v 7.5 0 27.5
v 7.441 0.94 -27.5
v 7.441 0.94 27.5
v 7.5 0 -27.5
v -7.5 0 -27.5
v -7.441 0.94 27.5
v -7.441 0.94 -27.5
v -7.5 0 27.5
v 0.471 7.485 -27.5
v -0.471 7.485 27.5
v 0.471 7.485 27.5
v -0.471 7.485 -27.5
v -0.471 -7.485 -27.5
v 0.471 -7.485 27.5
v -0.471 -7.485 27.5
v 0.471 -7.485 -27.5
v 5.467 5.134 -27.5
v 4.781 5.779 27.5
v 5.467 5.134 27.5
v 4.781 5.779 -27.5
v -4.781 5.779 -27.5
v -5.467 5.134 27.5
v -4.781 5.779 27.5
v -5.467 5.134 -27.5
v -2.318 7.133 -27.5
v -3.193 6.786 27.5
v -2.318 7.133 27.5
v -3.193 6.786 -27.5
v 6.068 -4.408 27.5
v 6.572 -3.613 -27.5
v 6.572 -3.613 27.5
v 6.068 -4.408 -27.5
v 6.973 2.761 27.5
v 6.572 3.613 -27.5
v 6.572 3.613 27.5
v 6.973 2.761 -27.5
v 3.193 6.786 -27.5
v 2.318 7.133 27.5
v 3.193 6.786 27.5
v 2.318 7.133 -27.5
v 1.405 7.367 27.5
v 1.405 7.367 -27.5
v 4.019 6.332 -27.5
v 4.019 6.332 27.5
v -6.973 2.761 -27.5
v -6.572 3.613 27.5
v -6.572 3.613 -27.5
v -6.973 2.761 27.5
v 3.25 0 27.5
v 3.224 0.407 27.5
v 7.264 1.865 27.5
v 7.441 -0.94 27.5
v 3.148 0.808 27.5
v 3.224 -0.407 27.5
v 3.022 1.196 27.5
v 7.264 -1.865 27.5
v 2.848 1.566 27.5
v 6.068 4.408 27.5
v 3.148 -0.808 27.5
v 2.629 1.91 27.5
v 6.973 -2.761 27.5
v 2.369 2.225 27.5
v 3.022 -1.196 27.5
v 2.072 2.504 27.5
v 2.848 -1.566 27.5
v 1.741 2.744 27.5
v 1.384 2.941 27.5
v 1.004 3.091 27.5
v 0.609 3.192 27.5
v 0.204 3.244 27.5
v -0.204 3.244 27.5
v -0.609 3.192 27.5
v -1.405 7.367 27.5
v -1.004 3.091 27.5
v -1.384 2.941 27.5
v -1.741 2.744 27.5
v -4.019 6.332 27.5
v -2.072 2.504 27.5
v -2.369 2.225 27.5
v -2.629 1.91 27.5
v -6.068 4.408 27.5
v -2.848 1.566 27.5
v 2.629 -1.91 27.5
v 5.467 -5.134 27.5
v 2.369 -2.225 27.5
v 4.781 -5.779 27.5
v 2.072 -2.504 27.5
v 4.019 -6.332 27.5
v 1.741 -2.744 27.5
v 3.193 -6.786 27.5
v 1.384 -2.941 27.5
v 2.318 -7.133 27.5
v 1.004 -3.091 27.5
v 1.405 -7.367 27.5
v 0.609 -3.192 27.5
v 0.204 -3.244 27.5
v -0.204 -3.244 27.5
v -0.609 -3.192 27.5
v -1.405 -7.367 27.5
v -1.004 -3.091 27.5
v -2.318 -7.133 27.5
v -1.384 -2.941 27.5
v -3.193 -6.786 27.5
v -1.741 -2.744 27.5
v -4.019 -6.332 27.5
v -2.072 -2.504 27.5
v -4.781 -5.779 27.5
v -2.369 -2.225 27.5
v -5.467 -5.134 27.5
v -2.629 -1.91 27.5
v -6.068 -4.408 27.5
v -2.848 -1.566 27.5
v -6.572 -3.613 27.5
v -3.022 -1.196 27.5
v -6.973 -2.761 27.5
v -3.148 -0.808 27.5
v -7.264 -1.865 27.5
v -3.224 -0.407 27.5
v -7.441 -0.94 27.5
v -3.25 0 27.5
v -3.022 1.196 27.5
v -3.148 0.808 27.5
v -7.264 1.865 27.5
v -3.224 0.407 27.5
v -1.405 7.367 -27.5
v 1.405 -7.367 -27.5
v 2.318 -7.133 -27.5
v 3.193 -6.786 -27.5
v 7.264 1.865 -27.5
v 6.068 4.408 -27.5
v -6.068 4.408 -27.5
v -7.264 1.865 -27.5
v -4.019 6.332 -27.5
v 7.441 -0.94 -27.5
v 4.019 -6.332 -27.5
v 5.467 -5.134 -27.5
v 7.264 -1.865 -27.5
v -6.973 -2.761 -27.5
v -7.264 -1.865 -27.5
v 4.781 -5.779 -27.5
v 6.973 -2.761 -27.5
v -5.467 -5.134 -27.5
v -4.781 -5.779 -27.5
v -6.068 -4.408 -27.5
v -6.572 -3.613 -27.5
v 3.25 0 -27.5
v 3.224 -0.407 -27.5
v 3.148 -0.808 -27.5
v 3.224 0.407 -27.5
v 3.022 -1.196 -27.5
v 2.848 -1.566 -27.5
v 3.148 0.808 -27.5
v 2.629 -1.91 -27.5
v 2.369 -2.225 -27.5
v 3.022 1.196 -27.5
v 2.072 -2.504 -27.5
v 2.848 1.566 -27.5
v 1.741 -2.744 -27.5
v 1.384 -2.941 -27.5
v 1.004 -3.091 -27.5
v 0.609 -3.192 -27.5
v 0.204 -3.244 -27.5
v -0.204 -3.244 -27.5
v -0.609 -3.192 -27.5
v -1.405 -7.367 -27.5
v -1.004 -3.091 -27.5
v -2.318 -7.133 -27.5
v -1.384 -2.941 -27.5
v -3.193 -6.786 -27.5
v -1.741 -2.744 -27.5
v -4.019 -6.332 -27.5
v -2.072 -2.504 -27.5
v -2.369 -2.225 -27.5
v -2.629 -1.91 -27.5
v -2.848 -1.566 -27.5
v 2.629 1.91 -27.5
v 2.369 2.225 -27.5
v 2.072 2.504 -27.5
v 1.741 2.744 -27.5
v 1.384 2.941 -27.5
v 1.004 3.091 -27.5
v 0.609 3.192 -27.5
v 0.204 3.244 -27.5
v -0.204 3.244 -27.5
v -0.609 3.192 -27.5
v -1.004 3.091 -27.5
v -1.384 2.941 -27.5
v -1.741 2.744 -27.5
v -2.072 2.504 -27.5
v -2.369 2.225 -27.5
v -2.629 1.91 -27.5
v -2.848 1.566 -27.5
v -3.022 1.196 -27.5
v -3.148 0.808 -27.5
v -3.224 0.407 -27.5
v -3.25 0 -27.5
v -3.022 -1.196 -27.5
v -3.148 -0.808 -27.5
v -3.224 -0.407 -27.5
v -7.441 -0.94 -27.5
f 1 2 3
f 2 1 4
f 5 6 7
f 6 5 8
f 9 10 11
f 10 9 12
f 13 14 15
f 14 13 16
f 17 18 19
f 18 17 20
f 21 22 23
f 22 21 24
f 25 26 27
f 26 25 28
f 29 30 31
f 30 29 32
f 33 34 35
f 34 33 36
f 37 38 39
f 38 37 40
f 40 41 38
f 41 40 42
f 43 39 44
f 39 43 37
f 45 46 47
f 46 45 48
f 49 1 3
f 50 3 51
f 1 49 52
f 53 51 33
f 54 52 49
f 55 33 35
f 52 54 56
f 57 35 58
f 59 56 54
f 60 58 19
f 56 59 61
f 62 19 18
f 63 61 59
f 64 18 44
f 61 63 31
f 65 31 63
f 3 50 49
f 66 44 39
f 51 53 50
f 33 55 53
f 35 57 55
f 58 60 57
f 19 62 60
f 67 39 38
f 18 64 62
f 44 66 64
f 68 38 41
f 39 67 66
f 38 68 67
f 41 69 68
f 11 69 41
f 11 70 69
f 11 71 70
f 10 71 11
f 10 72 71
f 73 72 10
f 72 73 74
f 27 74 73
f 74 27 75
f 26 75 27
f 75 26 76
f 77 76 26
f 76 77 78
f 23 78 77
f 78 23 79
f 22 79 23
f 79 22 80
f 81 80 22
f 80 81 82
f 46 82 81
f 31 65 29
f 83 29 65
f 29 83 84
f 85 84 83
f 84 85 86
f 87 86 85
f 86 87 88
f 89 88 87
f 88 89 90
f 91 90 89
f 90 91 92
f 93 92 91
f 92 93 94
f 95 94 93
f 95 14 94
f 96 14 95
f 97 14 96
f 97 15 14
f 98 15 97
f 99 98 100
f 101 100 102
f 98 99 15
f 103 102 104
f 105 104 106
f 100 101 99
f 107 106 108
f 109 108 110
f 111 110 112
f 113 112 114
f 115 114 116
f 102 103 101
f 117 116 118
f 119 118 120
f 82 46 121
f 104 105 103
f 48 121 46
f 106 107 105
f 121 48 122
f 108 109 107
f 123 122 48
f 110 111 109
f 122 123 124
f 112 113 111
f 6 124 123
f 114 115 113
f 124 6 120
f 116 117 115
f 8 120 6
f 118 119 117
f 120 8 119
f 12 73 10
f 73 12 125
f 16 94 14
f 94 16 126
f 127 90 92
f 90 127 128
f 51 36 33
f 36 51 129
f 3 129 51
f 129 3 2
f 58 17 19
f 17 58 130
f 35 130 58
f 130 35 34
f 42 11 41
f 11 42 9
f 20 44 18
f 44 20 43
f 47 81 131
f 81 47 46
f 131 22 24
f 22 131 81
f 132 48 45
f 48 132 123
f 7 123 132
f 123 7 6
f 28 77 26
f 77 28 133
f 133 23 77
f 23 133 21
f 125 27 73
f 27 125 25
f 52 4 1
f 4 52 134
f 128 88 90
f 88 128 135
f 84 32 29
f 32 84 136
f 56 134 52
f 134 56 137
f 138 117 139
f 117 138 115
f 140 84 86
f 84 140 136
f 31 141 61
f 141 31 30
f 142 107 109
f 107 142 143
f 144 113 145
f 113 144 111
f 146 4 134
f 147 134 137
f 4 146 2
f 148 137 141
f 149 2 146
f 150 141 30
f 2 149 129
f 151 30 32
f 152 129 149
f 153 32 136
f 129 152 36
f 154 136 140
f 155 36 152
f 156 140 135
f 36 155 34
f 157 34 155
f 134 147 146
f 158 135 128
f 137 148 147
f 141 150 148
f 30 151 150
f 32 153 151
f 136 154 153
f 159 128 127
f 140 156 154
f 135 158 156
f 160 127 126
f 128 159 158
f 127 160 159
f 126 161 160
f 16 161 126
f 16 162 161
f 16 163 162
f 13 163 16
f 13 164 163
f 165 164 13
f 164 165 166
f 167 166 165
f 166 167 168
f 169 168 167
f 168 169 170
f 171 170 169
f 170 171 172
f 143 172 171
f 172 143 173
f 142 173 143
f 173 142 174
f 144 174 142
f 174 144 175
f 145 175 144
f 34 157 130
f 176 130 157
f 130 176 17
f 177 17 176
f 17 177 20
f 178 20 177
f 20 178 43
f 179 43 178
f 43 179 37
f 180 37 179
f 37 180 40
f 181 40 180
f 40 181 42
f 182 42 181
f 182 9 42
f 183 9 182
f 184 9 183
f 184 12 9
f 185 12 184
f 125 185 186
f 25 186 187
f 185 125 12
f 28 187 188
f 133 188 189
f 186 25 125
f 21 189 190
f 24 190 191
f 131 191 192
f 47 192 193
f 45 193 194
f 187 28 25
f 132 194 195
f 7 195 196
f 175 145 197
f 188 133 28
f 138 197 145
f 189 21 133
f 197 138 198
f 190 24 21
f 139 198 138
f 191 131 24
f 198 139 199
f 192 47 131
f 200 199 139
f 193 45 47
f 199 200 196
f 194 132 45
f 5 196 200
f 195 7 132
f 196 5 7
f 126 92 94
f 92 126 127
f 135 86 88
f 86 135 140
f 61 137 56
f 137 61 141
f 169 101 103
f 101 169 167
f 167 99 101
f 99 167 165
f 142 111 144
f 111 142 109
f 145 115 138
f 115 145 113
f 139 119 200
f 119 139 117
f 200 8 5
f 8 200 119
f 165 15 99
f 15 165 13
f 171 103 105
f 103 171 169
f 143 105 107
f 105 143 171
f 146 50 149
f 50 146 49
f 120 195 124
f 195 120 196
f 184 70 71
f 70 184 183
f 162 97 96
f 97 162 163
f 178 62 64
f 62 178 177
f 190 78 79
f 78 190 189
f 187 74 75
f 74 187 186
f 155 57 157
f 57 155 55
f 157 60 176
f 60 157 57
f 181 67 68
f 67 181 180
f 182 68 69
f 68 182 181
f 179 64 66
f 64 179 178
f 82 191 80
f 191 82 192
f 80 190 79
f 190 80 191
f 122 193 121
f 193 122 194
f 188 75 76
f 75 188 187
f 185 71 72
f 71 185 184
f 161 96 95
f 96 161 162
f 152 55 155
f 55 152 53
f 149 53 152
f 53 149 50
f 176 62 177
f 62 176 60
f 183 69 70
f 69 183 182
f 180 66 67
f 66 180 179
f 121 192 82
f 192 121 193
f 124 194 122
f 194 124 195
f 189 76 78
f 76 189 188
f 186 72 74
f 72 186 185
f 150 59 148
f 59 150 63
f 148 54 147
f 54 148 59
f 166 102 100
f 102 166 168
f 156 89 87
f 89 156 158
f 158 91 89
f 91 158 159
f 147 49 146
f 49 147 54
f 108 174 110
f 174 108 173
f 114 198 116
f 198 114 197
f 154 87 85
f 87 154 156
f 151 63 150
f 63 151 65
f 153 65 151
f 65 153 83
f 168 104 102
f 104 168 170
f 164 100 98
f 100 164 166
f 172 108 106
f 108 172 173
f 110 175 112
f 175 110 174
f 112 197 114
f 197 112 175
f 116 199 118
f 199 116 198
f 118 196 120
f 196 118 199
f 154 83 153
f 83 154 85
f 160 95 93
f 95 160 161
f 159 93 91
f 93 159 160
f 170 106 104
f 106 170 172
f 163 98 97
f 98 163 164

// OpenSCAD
$fn = 50;


difference() {
	union() {
		translate(v = [0, 0, -27.5000000000]) {
			cylinder(h = 55, r = 7.5000000000);
		}
	}
	union() {
		translate(v = [0, 0, -100.0000000000]) {
			cylinder(h = 200, r = 3.2500000000);
		}
	}
}
